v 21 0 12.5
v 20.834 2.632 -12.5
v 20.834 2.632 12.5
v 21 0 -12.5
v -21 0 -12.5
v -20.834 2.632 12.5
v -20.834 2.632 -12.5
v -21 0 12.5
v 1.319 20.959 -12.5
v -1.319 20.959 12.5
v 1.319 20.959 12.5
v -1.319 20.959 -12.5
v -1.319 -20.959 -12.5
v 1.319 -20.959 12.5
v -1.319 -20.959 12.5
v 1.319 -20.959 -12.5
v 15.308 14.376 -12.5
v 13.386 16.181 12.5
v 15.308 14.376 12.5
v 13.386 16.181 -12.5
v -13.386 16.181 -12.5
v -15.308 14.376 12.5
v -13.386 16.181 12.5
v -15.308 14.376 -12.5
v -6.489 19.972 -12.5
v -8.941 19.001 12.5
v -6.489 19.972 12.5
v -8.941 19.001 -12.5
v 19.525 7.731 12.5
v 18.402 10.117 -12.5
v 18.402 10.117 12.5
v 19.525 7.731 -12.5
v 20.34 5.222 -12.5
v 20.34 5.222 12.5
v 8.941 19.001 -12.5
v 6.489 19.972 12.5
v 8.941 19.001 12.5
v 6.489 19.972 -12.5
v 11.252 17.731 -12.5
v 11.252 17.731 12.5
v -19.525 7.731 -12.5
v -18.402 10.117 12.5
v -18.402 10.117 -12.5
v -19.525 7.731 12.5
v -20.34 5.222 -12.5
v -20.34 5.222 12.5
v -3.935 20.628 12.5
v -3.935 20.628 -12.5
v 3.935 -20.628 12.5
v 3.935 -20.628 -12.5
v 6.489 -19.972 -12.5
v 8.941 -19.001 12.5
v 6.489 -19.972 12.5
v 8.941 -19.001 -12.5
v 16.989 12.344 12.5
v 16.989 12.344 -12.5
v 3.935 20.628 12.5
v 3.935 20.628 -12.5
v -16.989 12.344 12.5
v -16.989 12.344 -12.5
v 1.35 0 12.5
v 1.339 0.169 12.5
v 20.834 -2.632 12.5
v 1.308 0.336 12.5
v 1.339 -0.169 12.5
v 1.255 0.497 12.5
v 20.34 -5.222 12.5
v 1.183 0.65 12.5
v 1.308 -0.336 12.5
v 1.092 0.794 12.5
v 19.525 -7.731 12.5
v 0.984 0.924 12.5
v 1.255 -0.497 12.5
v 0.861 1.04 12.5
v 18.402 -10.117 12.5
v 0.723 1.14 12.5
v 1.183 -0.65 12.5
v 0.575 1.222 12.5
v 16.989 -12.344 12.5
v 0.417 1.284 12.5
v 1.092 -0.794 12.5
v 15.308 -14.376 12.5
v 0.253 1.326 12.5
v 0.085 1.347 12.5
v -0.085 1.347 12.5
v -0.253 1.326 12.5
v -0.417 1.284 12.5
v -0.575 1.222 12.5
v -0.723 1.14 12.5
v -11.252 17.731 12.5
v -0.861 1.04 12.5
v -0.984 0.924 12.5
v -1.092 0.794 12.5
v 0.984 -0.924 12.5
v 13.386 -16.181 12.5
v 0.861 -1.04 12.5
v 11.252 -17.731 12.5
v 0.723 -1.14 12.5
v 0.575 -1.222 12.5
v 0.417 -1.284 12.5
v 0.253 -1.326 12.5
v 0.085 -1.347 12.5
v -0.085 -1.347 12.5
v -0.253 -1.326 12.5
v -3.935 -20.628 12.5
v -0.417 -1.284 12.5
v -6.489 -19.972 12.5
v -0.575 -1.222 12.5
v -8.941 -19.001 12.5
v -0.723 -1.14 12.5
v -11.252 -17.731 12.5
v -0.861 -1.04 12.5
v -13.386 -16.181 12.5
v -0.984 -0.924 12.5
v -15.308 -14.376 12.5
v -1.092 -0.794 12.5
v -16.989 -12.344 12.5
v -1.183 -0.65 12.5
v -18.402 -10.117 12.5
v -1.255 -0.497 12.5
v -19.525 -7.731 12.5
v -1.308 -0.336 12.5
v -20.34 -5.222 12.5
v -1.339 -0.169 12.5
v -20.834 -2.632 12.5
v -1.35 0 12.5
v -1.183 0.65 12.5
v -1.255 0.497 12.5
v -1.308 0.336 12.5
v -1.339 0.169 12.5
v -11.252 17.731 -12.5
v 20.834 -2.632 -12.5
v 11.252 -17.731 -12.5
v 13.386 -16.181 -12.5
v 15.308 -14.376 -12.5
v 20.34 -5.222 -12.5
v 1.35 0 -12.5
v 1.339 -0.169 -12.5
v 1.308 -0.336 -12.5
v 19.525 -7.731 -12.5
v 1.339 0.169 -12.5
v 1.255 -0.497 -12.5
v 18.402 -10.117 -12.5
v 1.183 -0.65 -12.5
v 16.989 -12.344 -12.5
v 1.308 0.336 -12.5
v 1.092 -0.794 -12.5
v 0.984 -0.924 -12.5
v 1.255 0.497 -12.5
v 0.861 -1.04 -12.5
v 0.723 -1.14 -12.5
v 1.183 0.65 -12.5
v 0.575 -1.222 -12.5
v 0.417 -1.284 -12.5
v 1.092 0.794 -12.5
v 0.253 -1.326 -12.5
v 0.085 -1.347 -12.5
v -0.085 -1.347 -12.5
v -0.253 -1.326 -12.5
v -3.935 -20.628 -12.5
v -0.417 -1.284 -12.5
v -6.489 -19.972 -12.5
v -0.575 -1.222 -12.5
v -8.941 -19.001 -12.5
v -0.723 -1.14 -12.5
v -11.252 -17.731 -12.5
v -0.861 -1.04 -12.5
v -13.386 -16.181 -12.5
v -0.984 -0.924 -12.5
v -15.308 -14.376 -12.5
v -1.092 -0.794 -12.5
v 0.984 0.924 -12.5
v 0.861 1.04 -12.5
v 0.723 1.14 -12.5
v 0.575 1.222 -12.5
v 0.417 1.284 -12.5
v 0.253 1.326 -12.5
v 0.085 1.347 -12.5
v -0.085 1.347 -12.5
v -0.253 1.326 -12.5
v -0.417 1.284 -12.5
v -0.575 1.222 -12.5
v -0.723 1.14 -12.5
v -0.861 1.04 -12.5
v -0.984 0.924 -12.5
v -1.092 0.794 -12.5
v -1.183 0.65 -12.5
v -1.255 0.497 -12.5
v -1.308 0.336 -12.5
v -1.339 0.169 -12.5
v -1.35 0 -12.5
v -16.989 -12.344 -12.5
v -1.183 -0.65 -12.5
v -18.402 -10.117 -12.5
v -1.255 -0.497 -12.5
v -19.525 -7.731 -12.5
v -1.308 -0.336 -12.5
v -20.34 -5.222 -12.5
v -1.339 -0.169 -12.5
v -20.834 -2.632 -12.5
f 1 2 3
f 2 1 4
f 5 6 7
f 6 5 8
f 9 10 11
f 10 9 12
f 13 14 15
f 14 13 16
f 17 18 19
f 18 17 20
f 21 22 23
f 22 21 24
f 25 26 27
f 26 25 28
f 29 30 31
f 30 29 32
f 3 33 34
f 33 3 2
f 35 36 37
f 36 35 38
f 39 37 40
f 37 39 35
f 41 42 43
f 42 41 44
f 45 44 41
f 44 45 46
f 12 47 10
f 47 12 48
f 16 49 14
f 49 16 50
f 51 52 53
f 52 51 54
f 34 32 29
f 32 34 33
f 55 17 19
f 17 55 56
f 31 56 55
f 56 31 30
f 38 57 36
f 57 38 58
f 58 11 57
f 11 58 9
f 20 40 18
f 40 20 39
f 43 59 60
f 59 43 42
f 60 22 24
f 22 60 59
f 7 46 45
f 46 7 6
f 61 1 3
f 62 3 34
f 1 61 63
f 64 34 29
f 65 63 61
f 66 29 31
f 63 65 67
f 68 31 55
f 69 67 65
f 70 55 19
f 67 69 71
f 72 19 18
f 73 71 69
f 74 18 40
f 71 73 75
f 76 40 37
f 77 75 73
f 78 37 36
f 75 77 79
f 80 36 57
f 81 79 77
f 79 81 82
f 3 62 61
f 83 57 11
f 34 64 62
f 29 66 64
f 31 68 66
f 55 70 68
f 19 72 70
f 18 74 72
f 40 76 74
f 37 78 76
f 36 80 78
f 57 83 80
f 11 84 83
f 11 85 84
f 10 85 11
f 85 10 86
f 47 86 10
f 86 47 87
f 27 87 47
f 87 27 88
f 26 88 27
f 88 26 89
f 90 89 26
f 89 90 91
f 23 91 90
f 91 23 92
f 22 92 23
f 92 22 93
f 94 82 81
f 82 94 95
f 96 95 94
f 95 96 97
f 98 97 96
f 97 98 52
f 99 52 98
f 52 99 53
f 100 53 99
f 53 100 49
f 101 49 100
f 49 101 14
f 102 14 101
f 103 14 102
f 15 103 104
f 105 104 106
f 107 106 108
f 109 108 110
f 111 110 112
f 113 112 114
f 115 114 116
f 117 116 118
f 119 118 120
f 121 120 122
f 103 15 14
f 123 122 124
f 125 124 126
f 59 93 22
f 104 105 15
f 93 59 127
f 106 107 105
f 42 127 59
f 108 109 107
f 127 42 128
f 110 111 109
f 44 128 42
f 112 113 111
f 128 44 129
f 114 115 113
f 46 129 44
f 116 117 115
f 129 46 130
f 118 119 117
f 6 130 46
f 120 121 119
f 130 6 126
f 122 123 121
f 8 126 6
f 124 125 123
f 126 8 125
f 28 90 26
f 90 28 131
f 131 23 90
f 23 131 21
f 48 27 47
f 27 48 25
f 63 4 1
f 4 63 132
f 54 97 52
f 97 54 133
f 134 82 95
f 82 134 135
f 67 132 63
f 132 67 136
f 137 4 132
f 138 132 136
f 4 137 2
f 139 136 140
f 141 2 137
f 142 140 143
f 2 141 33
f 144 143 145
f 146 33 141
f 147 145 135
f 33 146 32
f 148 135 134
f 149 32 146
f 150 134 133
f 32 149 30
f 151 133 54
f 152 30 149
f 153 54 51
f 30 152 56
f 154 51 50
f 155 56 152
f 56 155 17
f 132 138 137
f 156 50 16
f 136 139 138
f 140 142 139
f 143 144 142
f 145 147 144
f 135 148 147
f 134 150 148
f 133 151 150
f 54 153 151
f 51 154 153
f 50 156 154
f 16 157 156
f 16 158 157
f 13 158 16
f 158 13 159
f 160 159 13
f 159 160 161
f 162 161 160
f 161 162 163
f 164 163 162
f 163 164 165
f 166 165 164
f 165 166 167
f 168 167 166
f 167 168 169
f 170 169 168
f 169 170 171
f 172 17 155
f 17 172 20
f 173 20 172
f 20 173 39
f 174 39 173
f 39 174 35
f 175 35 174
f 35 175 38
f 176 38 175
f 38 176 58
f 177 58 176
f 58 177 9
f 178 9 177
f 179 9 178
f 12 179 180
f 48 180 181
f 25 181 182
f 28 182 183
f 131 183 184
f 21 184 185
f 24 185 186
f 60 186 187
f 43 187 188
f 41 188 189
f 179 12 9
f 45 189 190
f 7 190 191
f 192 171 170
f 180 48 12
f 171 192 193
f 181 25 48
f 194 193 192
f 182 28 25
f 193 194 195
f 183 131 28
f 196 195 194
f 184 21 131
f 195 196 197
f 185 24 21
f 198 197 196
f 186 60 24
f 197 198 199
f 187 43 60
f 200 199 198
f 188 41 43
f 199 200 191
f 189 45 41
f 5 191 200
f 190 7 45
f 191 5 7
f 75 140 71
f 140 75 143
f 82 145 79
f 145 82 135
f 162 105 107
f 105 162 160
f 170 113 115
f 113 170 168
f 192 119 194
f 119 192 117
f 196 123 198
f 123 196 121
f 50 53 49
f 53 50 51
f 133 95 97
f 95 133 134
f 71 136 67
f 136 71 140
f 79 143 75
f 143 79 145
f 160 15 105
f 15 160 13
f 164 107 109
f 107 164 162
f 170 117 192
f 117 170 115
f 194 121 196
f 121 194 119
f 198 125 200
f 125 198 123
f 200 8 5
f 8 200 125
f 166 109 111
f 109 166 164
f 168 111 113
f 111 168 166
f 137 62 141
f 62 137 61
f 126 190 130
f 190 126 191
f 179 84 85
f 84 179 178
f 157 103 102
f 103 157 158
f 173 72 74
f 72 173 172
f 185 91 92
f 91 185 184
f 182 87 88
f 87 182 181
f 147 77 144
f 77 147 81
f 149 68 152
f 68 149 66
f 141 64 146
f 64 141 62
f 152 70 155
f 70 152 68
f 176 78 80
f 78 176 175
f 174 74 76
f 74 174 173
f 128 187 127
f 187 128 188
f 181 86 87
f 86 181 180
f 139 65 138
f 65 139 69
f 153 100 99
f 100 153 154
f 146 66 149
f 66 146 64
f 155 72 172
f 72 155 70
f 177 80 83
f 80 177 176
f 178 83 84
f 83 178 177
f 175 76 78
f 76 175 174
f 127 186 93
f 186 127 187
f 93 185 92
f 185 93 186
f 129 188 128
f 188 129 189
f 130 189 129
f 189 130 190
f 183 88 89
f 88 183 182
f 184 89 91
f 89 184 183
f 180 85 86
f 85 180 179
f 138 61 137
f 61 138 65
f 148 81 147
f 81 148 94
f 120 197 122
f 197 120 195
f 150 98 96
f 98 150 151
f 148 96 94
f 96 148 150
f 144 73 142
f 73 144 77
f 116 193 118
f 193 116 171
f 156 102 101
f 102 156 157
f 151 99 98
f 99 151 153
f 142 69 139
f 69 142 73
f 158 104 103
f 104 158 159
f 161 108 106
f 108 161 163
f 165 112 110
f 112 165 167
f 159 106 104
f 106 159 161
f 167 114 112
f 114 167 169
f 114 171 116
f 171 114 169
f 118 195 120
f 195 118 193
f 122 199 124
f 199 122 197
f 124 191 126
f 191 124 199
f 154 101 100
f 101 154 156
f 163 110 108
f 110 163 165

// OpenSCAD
$fn = 50;


difference() {
	union() {
		translate(v = [0, 0, -12.5000000000]) {
			cylinder(h = 25, r = 21.0000000000);
		}
	}
	union() {
		translate(v = [0, 0, -100.0000000000]) {
			cylinder(h = 200, r = 1.3500000000);
		}
	}
}
